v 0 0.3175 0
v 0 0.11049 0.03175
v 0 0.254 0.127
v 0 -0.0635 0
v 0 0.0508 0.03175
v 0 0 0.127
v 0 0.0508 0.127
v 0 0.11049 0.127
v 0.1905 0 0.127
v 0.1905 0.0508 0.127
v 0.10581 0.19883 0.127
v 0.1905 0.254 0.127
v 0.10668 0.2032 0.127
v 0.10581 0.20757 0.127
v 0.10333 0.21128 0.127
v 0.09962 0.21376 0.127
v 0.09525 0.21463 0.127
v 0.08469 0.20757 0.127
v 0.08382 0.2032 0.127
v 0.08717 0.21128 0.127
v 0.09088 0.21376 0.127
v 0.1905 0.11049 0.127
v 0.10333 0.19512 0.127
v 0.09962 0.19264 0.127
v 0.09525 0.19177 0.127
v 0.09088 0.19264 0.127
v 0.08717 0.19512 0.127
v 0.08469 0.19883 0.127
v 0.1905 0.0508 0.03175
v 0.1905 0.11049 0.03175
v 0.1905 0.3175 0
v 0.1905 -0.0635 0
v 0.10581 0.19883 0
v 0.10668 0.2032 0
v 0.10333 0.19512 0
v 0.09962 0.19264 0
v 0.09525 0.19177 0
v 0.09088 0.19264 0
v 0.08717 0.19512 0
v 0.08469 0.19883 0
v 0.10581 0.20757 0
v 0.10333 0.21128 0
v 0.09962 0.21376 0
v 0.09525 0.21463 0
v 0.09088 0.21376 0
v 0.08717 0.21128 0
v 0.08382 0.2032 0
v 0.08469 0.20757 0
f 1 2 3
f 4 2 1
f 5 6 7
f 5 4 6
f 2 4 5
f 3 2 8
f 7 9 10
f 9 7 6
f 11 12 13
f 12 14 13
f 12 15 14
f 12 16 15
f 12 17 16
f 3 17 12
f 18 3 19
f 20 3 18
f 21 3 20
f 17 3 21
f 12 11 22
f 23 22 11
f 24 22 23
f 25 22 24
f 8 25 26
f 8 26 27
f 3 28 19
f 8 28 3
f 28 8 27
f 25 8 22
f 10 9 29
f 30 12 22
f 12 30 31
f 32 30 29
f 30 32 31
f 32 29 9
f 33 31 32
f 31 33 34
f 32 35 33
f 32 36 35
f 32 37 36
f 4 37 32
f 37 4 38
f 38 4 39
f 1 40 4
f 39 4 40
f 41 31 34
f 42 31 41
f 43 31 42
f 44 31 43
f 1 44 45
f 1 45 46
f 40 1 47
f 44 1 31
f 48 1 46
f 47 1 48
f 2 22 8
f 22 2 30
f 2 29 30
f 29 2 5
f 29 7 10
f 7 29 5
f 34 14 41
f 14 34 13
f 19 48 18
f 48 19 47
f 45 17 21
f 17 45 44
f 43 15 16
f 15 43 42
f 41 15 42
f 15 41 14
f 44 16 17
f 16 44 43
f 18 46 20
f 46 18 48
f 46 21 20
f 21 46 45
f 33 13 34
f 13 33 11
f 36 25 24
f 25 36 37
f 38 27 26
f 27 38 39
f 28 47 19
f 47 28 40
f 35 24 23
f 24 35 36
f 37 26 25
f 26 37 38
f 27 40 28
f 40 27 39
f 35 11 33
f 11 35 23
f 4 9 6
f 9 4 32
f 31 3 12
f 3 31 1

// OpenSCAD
//
// Vanity bracket
//
//

$fn=16;
module prism(l, w, h) {
       polyhedron(points=[
               [0,0,h],           // 0    front top corner
               [0,0,0],[w,0,0],   // 1, 2 front left & right bottom corners
               [0,l,h],           // 3    back top corner
               [0,l,0],[w,l,0]    // 4, 5 back left & right bottom corners
       ], faces=[ // points for all faces must be ordered clockwise when looking in
               [0,2,1],    // top face
               [3,4,5],    // base face
               [0,1,4,3],  // h face
               [1,2,5,4],  // w face
               [0,3,5,2],  // hypotenuse face
       ]);
}


len = 0.75;

// experimentally, this seems to produce correct output
// for the cura slicer
scal = 0.254;


scale( [scal, scal, scal]) {
  difference() {
       cube( [len, 1, .5]);
       translate( [-0.1, 0.2, 0.125])
  	  cube( [len + 0.2, 0.235, .5]);
       translate( [len/2, 0.8, -0.1])
  	  cylinder( h=1.2, d=0.09);
  }
  
  rotate( [0, 0, 270])
      prism( len, .25, .5);
      translate( [len, 1, 0])
  rotate( [0, 0, 90])
      prism( len, .25, .5);
}
